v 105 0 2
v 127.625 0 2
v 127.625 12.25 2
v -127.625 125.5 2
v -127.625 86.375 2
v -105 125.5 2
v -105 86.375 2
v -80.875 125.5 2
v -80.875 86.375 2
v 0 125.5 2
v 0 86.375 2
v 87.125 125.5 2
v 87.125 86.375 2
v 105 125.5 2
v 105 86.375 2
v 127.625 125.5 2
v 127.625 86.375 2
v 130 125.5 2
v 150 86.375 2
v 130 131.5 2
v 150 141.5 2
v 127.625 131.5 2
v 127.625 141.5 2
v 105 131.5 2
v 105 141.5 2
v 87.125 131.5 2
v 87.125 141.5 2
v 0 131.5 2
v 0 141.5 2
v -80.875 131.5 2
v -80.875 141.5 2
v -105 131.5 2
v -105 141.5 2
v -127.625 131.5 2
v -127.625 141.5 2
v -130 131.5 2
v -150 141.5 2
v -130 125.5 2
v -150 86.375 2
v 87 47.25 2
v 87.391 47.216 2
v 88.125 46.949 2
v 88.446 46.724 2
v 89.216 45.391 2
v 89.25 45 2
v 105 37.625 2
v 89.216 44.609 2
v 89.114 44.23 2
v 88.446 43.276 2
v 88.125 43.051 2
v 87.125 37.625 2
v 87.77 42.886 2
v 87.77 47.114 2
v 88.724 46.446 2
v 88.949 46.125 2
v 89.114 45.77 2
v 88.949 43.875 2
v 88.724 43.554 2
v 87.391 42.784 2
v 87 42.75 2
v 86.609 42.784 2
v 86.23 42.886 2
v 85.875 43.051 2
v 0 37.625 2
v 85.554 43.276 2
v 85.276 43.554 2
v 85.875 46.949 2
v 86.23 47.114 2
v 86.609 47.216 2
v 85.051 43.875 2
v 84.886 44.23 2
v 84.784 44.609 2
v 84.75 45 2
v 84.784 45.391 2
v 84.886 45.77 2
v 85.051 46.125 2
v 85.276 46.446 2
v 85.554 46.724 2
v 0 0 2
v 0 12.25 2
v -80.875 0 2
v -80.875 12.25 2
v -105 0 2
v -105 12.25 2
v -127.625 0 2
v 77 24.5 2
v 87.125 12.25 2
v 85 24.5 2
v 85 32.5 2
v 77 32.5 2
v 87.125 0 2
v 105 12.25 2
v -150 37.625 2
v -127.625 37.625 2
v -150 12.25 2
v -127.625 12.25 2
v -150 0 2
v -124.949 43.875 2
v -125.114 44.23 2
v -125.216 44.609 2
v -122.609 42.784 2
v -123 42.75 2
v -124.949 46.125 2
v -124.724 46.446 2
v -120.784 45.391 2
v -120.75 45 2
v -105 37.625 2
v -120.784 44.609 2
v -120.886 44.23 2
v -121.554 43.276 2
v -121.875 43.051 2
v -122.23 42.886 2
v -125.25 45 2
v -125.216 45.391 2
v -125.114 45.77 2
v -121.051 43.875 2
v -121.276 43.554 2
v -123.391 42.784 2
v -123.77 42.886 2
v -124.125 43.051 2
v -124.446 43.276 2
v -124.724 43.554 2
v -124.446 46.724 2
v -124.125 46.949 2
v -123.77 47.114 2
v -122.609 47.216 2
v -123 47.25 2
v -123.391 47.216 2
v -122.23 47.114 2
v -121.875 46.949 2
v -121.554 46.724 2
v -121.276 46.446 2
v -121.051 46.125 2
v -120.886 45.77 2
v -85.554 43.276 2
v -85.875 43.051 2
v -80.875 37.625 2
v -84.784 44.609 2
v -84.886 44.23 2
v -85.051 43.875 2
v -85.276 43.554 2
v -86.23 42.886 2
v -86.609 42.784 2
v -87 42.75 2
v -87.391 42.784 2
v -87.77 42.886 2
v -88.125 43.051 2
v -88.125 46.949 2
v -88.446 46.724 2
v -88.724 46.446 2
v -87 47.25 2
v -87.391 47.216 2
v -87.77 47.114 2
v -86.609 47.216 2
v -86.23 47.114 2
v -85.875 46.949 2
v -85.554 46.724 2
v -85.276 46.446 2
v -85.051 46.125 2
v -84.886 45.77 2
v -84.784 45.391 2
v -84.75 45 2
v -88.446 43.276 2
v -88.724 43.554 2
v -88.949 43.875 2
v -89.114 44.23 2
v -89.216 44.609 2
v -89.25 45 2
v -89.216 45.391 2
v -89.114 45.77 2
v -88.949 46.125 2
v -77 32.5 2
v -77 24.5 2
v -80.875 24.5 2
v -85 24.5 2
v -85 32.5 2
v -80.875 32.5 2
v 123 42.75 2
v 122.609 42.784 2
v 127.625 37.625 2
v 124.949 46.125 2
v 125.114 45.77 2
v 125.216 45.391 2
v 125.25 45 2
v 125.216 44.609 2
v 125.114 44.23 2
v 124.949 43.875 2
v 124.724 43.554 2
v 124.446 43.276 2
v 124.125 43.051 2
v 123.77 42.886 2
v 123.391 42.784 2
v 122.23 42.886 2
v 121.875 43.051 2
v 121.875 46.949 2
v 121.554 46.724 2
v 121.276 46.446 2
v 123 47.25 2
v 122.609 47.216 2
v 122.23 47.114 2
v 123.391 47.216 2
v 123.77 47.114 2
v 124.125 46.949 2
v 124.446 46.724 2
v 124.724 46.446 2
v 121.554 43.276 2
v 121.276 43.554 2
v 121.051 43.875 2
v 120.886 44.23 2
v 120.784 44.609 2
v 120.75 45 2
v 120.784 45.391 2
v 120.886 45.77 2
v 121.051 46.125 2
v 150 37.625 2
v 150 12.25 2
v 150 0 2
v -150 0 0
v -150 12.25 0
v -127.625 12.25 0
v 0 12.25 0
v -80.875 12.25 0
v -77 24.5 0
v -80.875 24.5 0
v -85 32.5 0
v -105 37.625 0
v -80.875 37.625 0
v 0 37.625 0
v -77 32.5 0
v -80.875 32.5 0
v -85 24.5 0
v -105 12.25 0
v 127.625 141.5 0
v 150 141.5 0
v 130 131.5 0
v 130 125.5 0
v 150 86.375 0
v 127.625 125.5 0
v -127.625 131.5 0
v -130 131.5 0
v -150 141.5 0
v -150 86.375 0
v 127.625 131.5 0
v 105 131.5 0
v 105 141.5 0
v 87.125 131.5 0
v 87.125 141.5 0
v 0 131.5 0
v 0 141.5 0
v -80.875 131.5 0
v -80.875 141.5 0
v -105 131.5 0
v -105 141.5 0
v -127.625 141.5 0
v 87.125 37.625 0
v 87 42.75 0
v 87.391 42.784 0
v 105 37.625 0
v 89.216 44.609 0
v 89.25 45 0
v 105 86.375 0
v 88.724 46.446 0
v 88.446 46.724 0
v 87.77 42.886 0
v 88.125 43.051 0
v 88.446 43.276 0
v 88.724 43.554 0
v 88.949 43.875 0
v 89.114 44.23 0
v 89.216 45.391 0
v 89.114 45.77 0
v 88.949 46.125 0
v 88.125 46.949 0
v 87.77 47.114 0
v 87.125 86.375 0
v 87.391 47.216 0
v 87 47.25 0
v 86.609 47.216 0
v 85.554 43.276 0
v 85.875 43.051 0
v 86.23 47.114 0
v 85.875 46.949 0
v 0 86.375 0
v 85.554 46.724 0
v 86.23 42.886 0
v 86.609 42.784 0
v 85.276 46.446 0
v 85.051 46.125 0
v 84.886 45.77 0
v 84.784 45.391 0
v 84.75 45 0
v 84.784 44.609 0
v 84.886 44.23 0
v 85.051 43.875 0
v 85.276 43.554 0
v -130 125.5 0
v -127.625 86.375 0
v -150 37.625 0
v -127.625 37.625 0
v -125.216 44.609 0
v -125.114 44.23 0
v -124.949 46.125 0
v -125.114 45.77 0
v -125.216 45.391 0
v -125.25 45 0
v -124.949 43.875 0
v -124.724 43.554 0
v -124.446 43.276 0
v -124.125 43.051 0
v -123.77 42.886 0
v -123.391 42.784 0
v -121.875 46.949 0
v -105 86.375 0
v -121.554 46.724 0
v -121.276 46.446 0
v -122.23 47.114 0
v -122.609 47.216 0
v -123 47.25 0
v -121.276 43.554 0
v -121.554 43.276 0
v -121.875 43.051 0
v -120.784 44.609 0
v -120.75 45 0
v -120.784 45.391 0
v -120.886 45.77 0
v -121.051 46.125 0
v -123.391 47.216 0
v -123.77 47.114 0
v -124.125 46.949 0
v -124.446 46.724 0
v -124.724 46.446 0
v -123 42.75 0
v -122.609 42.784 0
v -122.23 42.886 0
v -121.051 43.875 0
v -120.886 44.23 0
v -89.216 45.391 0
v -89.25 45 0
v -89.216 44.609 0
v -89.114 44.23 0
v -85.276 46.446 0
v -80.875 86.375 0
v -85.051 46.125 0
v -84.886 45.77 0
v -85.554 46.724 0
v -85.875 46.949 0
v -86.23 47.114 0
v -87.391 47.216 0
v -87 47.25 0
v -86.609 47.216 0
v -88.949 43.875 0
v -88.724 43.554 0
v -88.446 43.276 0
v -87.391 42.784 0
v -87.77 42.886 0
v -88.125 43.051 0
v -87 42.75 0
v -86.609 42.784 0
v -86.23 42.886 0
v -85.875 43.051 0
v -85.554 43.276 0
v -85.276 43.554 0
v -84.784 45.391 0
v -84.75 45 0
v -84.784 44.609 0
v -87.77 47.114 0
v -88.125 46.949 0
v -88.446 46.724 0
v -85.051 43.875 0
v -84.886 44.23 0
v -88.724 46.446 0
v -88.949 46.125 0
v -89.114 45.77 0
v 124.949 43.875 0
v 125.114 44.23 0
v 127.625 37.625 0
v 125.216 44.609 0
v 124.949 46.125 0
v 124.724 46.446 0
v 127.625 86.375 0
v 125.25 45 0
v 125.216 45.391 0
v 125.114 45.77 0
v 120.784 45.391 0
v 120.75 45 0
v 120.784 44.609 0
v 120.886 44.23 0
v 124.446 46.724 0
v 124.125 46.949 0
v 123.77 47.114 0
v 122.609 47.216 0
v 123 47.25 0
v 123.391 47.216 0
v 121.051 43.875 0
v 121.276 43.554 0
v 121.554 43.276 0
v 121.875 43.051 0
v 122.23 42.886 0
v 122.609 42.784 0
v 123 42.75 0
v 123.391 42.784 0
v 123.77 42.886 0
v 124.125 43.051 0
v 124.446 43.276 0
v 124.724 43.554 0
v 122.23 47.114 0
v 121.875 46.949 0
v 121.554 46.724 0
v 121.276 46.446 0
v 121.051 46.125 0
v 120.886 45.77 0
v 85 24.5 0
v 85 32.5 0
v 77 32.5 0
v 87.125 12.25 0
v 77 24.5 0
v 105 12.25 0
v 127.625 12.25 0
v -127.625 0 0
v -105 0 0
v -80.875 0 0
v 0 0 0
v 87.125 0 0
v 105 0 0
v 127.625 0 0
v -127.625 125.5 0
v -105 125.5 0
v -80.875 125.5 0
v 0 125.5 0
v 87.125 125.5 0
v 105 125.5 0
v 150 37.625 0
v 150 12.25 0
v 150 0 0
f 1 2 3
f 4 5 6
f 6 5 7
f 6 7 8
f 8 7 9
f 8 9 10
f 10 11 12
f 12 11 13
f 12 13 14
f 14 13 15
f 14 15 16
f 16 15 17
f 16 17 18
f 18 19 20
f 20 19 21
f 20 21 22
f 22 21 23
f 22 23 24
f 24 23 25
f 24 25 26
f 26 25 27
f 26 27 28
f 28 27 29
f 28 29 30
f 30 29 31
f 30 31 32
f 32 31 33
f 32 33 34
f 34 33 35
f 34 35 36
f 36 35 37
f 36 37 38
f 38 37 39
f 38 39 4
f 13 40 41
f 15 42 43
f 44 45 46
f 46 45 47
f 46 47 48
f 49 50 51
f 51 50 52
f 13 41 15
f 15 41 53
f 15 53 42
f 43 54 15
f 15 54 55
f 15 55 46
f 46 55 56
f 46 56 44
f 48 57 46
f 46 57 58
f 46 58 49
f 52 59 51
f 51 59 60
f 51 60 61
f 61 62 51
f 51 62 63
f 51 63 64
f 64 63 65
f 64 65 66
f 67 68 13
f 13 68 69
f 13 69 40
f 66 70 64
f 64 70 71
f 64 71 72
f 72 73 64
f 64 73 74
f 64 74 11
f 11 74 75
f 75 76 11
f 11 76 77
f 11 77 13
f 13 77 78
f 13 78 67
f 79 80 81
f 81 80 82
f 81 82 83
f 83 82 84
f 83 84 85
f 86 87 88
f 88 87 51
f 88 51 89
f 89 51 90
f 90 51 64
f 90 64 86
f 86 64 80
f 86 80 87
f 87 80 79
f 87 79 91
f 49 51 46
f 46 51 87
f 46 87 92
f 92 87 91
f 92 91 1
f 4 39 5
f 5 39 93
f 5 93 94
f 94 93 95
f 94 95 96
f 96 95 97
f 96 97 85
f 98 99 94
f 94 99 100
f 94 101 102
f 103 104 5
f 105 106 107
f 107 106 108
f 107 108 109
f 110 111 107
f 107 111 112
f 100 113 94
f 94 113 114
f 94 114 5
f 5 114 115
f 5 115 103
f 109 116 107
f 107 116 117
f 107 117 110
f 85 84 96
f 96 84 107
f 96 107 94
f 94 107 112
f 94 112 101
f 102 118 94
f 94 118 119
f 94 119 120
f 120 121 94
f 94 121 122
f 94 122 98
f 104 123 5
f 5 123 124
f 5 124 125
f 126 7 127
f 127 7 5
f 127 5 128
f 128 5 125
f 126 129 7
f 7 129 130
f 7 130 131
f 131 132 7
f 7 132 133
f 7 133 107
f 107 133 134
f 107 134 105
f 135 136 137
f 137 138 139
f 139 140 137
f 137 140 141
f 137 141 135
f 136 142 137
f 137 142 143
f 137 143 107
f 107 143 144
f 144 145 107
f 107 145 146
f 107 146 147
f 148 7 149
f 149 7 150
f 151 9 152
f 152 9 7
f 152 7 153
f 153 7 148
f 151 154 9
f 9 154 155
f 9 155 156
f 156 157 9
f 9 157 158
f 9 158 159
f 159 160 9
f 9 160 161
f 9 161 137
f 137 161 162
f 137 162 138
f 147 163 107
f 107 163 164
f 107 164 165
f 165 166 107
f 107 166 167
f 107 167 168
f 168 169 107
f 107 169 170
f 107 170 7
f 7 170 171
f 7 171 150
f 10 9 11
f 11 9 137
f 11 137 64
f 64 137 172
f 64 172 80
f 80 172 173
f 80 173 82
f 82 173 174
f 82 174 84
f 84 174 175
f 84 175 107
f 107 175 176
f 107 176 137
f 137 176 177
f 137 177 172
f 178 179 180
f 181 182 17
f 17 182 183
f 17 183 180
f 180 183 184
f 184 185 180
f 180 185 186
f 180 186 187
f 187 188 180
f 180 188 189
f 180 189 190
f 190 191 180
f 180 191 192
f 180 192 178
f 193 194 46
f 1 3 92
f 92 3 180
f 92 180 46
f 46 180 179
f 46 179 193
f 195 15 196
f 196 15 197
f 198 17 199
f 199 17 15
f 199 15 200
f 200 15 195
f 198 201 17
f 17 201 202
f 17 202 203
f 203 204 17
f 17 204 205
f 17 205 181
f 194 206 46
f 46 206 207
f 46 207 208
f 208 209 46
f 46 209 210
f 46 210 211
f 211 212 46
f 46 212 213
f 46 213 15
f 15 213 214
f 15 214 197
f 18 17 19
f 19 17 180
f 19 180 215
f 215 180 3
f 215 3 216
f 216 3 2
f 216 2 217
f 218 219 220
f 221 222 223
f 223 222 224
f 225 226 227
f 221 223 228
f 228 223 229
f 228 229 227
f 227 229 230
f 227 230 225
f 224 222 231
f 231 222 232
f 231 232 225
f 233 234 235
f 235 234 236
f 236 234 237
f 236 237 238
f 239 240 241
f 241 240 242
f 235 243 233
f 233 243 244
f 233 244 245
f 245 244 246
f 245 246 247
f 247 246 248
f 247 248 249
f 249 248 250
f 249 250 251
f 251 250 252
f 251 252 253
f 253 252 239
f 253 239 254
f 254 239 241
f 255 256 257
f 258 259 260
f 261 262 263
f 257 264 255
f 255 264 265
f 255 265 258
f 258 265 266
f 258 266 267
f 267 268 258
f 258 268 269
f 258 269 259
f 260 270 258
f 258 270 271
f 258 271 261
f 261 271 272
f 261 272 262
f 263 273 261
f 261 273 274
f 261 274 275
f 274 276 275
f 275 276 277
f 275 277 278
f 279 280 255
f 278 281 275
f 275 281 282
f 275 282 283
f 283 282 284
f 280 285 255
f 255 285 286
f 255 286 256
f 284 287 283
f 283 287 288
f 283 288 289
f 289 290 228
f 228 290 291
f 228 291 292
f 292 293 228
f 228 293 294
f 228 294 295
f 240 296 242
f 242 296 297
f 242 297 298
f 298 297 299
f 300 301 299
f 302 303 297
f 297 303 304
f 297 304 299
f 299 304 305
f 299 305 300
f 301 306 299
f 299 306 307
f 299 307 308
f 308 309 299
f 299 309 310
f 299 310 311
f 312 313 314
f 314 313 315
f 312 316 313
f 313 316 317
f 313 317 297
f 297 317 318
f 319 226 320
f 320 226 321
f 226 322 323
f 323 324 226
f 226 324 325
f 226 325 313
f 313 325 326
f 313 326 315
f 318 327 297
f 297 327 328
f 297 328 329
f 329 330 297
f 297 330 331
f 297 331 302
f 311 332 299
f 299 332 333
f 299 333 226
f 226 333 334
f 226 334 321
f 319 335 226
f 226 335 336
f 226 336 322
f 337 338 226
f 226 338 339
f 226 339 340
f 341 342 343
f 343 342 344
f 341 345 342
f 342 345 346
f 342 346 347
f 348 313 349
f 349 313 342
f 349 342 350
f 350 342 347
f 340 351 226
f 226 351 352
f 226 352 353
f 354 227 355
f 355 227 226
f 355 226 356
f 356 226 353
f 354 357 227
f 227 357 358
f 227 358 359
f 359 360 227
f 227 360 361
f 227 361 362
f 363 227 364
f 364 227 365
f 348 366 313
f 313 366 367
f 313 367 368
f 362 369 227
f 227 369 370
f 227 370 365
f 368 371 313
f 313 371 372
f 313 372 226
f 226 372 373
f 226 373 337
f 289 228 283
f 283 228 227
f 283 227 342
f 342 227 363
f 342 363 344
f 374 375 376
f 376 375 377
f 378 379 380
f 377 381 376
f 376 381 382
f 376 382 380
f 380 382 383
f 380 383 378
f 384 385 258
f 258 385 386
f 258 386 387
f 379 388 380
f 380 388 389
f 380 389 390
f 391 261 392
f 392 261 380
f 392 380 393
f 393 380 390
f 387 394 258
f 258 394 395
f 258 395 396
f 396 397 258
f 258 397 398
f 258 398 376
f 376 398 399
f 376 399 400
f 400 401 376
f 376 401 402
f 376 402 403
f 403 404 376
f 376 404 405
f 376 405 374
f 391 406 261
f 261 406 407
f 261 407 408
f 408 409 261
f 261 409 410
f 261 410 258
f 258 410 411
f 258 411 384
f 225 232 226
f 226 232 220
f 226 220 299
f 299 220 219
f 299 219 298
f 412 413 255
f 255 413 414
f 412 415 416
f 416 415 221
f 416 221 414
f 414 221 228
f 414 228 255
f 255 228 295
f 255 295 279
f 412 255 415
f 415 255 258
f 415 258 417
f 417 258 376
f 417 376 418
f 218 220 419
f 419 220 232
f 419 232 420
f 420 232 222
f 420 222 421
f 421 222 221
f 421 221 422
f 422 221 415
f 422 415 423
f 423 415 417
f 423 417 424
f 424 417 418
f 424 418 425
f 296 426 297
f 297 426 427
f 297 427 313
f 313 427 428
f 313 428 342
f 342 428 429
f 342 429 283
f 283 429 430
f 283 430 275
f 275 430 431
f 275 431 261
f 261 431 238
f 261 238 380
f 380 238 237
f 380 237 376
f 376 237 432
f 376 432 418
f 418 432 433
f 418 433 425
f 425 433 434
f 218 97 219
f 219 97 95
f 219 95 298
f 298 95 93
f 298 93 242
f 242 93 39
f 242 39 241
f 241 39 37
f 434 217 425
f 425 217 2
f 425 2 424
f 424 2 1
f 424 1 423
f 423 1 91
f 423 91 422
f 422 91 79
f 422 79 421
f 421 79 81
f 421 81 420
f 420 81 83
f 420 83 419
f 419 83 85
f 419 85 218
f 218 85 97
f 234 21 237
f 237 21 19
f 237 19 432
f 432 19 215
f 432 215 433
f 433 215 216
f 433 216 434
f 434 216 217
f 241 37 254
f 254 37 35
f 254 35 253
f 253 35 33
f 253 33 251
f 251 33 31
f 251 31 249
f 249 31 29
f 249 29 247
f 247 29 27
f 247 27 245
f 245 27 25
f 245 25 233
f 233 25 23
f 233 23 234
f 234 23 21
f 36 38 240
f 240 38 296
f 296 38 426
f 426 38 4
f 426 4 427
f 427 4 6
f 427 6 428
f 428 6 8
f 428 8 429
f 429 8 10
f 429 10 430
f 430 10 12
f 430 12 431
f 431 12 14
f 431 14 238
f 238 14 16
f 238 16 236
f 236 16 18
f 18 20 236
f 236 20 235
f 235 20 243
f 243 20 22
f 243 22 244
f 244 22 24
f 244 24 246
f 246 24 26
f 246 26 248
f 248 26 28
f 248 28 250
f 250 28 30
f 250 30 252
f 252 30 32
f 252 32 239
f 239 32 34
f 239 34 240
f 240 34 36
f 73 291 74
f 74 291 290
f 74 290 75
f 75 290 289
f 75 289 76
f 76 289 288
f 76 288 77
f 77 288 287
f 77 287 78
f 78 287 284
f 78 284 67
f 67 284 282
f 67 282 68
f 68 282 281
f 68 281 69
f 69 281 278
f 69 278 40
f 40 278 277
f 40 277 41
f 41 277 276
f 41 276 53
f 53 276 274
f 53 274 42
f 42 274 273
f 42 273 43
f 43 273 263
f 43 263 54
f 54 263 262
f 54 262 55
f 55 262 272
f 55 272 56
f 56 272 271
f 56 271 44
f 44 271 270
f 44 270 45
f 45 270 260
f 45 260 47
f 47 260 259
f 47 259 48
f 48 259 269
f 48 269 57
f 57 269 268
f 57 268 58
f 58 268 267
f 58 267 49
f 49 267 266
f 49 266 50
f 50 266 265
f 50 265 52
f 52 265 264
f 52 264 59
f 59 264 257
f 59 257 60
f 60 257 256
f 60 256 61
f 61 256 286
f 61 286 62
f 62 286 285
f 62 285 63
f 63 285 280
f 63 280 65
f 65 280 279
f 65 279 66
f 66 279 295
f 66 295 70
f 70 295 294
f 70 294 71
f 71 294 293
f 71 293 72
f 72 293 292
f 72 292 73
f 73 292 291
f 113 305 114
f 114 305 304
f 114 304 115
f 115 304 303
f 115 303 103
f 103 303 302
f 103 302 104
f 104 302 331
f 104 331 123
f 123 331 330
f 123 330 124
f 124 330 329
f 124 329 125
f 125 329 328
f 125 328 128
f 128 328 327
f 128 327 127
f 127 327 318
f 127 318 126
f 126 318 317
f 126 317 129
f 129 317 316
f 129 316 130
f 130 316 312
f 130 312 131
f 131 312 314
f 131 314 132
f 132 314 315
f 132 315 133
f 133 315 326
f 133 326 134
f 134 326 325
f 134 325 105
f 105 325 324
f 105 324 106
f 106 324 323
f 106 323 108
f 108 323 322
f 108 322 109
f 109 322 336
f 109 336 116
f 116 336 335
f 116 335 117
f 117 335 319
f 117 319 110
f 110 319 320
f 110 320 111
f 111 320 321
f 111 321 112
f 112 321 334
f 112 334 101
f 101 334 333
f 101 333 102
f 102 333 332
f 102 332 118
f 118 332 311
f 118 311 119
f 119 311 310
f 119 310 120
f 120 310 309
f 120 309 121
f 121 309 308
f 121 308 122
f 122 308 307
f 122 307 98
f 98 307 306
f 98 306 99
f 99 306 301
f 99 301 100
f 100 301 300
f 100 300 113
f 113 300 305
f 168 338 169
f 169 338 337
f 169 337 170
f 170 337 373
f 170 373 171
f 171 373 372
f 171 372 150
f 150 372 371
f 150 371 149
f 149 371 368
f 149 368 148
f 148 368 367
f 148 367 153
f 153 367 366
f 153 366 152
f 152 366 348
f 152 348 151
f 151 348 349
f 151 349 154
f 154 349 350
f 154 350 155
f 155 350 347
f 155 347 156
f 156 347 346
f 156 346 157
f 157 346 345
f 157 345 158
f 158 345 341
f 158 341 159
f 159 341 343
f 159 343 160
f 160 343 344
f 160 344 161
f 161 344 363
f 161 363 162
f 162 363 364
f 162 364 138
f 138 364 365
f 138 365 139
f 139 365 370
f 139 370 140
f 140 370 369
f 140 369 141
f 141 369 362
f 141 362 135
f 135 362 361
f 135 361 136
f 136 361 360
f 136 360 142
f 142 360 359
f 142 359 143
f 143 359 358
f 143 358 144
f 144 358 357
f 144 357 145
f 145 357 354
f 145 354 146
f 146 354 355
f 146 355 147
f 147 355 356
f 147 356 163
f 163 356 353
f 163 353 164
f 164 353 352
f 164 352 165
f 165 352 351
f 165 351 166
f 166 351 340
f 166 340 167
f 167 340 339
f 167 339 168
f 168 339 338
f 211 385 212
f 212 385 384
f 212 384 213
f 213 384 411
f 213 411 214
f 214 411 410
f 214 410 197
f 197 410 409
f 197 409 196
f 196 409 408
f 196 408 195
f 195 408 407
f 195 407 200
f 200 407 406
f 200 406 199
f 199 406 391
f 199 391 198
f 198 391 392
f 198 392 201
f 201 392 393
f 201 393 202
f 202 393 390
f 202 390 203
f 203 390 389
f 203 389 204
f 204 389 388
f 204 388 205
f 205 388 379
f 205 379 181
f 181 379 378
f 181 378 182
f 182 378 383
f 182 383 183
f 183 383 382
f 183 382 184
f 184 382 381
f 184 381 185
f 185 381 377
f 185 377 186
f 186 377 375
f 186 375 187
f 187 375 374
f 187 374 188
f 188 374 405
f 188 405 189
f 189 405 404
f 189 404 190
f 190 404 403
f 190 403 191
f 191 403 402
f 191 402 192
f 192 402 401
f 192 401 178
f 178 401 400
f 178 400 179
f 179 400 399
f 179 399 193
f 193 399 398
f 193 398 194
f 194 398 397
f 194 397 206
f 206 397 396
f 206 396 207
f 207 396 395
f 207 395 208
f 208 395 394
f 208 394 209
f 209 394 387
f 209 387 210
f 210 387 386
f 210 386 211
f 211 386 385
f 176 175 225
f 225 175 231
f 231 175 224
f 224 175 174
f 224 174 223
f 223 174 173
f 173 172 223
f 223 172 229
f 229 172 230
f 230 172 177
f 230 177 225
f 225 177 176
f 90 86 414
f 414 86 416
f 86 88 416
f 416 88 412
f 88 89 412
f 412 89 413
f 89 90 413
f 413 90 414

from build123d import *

# Parameters (mm, degrees)
SK_PANEL_W            = 300
SK_PANEL_H            = 141.5
EX_PANEL_DEPTH        = 2
SK_LIGHTSLOT_W        = 260
SK_LIGHTSLOT_H        = 6
CUT_LIGHTSLOT_DEPTH   = 2
SK_CLIFFBOLTS_R       = 2.25
CUT_CLIFFBOLTS_DEPTH  = 2
SK_CLIFFCABLES_W      = 8
SK_CLIFFCABLES_H      = 8
CUT_CLIFFCABLES_DEPTH = 2


with BuildPart() as part:
    # SK_Panel → EX_Panel (new body)
    with BuildSketch(Plane.XY):
        with Locations((0, 70.75)):
            Rectangle(SK_PANEL_W, SK_PANEL_H)
    extrude(amount=EX_PANEL_DEPTH)

    # SK_LightSlot → CUT_LightSlot (cut)
    with BuildSketch(Plane.XY):
        with Locations((0, 128.5)):
            Rectangle(SK_LIGHTSLOT_W, SK_LIGHTSLOT_H)
    extrude(amount=CUT_LIGHTSLOT_DEPTH, mode=Mode.SUBTRACT)

    # SK_CliffBolts → CUT_CliffBolts (cut)
    with BuildSketch(Plane.XY):
        with Locations((123, 45)):
            Circle(SK_CLIFFBOLTS_R)
        with Locations((87, 45)):
            Circle(SK_CLIFFBOLTS_R)
        with Locations((-123, 45)):
            Circle(SK_CLIFFBOLTS_R)
        with Locations((-87, 45)):
            Circle(SK_CLIFFBOLTS_R)
    extrude(amount=CUT_CLIFFBOLTS_DEPTH, mode=Mode.SUBTRACT)

    # SK_CliffCables → CUT_CliffCables (cut)
    with BuildSketch(Plane.XY):
        with Locations((81, 28.5)):
            Rectangle(SK_CLIFFCABLES_W, SK_CLIFFCABLES_H)
        with Locations((-81, 28.5)):
            Rectangle(SK_CLIFFCABLES_W, SK_CLIFFCABLES_H)
    extrude(amount=CUT_CLIFFCABLES_DEPTH, mode=Mode.SUBTRACT)


solid = part.part
